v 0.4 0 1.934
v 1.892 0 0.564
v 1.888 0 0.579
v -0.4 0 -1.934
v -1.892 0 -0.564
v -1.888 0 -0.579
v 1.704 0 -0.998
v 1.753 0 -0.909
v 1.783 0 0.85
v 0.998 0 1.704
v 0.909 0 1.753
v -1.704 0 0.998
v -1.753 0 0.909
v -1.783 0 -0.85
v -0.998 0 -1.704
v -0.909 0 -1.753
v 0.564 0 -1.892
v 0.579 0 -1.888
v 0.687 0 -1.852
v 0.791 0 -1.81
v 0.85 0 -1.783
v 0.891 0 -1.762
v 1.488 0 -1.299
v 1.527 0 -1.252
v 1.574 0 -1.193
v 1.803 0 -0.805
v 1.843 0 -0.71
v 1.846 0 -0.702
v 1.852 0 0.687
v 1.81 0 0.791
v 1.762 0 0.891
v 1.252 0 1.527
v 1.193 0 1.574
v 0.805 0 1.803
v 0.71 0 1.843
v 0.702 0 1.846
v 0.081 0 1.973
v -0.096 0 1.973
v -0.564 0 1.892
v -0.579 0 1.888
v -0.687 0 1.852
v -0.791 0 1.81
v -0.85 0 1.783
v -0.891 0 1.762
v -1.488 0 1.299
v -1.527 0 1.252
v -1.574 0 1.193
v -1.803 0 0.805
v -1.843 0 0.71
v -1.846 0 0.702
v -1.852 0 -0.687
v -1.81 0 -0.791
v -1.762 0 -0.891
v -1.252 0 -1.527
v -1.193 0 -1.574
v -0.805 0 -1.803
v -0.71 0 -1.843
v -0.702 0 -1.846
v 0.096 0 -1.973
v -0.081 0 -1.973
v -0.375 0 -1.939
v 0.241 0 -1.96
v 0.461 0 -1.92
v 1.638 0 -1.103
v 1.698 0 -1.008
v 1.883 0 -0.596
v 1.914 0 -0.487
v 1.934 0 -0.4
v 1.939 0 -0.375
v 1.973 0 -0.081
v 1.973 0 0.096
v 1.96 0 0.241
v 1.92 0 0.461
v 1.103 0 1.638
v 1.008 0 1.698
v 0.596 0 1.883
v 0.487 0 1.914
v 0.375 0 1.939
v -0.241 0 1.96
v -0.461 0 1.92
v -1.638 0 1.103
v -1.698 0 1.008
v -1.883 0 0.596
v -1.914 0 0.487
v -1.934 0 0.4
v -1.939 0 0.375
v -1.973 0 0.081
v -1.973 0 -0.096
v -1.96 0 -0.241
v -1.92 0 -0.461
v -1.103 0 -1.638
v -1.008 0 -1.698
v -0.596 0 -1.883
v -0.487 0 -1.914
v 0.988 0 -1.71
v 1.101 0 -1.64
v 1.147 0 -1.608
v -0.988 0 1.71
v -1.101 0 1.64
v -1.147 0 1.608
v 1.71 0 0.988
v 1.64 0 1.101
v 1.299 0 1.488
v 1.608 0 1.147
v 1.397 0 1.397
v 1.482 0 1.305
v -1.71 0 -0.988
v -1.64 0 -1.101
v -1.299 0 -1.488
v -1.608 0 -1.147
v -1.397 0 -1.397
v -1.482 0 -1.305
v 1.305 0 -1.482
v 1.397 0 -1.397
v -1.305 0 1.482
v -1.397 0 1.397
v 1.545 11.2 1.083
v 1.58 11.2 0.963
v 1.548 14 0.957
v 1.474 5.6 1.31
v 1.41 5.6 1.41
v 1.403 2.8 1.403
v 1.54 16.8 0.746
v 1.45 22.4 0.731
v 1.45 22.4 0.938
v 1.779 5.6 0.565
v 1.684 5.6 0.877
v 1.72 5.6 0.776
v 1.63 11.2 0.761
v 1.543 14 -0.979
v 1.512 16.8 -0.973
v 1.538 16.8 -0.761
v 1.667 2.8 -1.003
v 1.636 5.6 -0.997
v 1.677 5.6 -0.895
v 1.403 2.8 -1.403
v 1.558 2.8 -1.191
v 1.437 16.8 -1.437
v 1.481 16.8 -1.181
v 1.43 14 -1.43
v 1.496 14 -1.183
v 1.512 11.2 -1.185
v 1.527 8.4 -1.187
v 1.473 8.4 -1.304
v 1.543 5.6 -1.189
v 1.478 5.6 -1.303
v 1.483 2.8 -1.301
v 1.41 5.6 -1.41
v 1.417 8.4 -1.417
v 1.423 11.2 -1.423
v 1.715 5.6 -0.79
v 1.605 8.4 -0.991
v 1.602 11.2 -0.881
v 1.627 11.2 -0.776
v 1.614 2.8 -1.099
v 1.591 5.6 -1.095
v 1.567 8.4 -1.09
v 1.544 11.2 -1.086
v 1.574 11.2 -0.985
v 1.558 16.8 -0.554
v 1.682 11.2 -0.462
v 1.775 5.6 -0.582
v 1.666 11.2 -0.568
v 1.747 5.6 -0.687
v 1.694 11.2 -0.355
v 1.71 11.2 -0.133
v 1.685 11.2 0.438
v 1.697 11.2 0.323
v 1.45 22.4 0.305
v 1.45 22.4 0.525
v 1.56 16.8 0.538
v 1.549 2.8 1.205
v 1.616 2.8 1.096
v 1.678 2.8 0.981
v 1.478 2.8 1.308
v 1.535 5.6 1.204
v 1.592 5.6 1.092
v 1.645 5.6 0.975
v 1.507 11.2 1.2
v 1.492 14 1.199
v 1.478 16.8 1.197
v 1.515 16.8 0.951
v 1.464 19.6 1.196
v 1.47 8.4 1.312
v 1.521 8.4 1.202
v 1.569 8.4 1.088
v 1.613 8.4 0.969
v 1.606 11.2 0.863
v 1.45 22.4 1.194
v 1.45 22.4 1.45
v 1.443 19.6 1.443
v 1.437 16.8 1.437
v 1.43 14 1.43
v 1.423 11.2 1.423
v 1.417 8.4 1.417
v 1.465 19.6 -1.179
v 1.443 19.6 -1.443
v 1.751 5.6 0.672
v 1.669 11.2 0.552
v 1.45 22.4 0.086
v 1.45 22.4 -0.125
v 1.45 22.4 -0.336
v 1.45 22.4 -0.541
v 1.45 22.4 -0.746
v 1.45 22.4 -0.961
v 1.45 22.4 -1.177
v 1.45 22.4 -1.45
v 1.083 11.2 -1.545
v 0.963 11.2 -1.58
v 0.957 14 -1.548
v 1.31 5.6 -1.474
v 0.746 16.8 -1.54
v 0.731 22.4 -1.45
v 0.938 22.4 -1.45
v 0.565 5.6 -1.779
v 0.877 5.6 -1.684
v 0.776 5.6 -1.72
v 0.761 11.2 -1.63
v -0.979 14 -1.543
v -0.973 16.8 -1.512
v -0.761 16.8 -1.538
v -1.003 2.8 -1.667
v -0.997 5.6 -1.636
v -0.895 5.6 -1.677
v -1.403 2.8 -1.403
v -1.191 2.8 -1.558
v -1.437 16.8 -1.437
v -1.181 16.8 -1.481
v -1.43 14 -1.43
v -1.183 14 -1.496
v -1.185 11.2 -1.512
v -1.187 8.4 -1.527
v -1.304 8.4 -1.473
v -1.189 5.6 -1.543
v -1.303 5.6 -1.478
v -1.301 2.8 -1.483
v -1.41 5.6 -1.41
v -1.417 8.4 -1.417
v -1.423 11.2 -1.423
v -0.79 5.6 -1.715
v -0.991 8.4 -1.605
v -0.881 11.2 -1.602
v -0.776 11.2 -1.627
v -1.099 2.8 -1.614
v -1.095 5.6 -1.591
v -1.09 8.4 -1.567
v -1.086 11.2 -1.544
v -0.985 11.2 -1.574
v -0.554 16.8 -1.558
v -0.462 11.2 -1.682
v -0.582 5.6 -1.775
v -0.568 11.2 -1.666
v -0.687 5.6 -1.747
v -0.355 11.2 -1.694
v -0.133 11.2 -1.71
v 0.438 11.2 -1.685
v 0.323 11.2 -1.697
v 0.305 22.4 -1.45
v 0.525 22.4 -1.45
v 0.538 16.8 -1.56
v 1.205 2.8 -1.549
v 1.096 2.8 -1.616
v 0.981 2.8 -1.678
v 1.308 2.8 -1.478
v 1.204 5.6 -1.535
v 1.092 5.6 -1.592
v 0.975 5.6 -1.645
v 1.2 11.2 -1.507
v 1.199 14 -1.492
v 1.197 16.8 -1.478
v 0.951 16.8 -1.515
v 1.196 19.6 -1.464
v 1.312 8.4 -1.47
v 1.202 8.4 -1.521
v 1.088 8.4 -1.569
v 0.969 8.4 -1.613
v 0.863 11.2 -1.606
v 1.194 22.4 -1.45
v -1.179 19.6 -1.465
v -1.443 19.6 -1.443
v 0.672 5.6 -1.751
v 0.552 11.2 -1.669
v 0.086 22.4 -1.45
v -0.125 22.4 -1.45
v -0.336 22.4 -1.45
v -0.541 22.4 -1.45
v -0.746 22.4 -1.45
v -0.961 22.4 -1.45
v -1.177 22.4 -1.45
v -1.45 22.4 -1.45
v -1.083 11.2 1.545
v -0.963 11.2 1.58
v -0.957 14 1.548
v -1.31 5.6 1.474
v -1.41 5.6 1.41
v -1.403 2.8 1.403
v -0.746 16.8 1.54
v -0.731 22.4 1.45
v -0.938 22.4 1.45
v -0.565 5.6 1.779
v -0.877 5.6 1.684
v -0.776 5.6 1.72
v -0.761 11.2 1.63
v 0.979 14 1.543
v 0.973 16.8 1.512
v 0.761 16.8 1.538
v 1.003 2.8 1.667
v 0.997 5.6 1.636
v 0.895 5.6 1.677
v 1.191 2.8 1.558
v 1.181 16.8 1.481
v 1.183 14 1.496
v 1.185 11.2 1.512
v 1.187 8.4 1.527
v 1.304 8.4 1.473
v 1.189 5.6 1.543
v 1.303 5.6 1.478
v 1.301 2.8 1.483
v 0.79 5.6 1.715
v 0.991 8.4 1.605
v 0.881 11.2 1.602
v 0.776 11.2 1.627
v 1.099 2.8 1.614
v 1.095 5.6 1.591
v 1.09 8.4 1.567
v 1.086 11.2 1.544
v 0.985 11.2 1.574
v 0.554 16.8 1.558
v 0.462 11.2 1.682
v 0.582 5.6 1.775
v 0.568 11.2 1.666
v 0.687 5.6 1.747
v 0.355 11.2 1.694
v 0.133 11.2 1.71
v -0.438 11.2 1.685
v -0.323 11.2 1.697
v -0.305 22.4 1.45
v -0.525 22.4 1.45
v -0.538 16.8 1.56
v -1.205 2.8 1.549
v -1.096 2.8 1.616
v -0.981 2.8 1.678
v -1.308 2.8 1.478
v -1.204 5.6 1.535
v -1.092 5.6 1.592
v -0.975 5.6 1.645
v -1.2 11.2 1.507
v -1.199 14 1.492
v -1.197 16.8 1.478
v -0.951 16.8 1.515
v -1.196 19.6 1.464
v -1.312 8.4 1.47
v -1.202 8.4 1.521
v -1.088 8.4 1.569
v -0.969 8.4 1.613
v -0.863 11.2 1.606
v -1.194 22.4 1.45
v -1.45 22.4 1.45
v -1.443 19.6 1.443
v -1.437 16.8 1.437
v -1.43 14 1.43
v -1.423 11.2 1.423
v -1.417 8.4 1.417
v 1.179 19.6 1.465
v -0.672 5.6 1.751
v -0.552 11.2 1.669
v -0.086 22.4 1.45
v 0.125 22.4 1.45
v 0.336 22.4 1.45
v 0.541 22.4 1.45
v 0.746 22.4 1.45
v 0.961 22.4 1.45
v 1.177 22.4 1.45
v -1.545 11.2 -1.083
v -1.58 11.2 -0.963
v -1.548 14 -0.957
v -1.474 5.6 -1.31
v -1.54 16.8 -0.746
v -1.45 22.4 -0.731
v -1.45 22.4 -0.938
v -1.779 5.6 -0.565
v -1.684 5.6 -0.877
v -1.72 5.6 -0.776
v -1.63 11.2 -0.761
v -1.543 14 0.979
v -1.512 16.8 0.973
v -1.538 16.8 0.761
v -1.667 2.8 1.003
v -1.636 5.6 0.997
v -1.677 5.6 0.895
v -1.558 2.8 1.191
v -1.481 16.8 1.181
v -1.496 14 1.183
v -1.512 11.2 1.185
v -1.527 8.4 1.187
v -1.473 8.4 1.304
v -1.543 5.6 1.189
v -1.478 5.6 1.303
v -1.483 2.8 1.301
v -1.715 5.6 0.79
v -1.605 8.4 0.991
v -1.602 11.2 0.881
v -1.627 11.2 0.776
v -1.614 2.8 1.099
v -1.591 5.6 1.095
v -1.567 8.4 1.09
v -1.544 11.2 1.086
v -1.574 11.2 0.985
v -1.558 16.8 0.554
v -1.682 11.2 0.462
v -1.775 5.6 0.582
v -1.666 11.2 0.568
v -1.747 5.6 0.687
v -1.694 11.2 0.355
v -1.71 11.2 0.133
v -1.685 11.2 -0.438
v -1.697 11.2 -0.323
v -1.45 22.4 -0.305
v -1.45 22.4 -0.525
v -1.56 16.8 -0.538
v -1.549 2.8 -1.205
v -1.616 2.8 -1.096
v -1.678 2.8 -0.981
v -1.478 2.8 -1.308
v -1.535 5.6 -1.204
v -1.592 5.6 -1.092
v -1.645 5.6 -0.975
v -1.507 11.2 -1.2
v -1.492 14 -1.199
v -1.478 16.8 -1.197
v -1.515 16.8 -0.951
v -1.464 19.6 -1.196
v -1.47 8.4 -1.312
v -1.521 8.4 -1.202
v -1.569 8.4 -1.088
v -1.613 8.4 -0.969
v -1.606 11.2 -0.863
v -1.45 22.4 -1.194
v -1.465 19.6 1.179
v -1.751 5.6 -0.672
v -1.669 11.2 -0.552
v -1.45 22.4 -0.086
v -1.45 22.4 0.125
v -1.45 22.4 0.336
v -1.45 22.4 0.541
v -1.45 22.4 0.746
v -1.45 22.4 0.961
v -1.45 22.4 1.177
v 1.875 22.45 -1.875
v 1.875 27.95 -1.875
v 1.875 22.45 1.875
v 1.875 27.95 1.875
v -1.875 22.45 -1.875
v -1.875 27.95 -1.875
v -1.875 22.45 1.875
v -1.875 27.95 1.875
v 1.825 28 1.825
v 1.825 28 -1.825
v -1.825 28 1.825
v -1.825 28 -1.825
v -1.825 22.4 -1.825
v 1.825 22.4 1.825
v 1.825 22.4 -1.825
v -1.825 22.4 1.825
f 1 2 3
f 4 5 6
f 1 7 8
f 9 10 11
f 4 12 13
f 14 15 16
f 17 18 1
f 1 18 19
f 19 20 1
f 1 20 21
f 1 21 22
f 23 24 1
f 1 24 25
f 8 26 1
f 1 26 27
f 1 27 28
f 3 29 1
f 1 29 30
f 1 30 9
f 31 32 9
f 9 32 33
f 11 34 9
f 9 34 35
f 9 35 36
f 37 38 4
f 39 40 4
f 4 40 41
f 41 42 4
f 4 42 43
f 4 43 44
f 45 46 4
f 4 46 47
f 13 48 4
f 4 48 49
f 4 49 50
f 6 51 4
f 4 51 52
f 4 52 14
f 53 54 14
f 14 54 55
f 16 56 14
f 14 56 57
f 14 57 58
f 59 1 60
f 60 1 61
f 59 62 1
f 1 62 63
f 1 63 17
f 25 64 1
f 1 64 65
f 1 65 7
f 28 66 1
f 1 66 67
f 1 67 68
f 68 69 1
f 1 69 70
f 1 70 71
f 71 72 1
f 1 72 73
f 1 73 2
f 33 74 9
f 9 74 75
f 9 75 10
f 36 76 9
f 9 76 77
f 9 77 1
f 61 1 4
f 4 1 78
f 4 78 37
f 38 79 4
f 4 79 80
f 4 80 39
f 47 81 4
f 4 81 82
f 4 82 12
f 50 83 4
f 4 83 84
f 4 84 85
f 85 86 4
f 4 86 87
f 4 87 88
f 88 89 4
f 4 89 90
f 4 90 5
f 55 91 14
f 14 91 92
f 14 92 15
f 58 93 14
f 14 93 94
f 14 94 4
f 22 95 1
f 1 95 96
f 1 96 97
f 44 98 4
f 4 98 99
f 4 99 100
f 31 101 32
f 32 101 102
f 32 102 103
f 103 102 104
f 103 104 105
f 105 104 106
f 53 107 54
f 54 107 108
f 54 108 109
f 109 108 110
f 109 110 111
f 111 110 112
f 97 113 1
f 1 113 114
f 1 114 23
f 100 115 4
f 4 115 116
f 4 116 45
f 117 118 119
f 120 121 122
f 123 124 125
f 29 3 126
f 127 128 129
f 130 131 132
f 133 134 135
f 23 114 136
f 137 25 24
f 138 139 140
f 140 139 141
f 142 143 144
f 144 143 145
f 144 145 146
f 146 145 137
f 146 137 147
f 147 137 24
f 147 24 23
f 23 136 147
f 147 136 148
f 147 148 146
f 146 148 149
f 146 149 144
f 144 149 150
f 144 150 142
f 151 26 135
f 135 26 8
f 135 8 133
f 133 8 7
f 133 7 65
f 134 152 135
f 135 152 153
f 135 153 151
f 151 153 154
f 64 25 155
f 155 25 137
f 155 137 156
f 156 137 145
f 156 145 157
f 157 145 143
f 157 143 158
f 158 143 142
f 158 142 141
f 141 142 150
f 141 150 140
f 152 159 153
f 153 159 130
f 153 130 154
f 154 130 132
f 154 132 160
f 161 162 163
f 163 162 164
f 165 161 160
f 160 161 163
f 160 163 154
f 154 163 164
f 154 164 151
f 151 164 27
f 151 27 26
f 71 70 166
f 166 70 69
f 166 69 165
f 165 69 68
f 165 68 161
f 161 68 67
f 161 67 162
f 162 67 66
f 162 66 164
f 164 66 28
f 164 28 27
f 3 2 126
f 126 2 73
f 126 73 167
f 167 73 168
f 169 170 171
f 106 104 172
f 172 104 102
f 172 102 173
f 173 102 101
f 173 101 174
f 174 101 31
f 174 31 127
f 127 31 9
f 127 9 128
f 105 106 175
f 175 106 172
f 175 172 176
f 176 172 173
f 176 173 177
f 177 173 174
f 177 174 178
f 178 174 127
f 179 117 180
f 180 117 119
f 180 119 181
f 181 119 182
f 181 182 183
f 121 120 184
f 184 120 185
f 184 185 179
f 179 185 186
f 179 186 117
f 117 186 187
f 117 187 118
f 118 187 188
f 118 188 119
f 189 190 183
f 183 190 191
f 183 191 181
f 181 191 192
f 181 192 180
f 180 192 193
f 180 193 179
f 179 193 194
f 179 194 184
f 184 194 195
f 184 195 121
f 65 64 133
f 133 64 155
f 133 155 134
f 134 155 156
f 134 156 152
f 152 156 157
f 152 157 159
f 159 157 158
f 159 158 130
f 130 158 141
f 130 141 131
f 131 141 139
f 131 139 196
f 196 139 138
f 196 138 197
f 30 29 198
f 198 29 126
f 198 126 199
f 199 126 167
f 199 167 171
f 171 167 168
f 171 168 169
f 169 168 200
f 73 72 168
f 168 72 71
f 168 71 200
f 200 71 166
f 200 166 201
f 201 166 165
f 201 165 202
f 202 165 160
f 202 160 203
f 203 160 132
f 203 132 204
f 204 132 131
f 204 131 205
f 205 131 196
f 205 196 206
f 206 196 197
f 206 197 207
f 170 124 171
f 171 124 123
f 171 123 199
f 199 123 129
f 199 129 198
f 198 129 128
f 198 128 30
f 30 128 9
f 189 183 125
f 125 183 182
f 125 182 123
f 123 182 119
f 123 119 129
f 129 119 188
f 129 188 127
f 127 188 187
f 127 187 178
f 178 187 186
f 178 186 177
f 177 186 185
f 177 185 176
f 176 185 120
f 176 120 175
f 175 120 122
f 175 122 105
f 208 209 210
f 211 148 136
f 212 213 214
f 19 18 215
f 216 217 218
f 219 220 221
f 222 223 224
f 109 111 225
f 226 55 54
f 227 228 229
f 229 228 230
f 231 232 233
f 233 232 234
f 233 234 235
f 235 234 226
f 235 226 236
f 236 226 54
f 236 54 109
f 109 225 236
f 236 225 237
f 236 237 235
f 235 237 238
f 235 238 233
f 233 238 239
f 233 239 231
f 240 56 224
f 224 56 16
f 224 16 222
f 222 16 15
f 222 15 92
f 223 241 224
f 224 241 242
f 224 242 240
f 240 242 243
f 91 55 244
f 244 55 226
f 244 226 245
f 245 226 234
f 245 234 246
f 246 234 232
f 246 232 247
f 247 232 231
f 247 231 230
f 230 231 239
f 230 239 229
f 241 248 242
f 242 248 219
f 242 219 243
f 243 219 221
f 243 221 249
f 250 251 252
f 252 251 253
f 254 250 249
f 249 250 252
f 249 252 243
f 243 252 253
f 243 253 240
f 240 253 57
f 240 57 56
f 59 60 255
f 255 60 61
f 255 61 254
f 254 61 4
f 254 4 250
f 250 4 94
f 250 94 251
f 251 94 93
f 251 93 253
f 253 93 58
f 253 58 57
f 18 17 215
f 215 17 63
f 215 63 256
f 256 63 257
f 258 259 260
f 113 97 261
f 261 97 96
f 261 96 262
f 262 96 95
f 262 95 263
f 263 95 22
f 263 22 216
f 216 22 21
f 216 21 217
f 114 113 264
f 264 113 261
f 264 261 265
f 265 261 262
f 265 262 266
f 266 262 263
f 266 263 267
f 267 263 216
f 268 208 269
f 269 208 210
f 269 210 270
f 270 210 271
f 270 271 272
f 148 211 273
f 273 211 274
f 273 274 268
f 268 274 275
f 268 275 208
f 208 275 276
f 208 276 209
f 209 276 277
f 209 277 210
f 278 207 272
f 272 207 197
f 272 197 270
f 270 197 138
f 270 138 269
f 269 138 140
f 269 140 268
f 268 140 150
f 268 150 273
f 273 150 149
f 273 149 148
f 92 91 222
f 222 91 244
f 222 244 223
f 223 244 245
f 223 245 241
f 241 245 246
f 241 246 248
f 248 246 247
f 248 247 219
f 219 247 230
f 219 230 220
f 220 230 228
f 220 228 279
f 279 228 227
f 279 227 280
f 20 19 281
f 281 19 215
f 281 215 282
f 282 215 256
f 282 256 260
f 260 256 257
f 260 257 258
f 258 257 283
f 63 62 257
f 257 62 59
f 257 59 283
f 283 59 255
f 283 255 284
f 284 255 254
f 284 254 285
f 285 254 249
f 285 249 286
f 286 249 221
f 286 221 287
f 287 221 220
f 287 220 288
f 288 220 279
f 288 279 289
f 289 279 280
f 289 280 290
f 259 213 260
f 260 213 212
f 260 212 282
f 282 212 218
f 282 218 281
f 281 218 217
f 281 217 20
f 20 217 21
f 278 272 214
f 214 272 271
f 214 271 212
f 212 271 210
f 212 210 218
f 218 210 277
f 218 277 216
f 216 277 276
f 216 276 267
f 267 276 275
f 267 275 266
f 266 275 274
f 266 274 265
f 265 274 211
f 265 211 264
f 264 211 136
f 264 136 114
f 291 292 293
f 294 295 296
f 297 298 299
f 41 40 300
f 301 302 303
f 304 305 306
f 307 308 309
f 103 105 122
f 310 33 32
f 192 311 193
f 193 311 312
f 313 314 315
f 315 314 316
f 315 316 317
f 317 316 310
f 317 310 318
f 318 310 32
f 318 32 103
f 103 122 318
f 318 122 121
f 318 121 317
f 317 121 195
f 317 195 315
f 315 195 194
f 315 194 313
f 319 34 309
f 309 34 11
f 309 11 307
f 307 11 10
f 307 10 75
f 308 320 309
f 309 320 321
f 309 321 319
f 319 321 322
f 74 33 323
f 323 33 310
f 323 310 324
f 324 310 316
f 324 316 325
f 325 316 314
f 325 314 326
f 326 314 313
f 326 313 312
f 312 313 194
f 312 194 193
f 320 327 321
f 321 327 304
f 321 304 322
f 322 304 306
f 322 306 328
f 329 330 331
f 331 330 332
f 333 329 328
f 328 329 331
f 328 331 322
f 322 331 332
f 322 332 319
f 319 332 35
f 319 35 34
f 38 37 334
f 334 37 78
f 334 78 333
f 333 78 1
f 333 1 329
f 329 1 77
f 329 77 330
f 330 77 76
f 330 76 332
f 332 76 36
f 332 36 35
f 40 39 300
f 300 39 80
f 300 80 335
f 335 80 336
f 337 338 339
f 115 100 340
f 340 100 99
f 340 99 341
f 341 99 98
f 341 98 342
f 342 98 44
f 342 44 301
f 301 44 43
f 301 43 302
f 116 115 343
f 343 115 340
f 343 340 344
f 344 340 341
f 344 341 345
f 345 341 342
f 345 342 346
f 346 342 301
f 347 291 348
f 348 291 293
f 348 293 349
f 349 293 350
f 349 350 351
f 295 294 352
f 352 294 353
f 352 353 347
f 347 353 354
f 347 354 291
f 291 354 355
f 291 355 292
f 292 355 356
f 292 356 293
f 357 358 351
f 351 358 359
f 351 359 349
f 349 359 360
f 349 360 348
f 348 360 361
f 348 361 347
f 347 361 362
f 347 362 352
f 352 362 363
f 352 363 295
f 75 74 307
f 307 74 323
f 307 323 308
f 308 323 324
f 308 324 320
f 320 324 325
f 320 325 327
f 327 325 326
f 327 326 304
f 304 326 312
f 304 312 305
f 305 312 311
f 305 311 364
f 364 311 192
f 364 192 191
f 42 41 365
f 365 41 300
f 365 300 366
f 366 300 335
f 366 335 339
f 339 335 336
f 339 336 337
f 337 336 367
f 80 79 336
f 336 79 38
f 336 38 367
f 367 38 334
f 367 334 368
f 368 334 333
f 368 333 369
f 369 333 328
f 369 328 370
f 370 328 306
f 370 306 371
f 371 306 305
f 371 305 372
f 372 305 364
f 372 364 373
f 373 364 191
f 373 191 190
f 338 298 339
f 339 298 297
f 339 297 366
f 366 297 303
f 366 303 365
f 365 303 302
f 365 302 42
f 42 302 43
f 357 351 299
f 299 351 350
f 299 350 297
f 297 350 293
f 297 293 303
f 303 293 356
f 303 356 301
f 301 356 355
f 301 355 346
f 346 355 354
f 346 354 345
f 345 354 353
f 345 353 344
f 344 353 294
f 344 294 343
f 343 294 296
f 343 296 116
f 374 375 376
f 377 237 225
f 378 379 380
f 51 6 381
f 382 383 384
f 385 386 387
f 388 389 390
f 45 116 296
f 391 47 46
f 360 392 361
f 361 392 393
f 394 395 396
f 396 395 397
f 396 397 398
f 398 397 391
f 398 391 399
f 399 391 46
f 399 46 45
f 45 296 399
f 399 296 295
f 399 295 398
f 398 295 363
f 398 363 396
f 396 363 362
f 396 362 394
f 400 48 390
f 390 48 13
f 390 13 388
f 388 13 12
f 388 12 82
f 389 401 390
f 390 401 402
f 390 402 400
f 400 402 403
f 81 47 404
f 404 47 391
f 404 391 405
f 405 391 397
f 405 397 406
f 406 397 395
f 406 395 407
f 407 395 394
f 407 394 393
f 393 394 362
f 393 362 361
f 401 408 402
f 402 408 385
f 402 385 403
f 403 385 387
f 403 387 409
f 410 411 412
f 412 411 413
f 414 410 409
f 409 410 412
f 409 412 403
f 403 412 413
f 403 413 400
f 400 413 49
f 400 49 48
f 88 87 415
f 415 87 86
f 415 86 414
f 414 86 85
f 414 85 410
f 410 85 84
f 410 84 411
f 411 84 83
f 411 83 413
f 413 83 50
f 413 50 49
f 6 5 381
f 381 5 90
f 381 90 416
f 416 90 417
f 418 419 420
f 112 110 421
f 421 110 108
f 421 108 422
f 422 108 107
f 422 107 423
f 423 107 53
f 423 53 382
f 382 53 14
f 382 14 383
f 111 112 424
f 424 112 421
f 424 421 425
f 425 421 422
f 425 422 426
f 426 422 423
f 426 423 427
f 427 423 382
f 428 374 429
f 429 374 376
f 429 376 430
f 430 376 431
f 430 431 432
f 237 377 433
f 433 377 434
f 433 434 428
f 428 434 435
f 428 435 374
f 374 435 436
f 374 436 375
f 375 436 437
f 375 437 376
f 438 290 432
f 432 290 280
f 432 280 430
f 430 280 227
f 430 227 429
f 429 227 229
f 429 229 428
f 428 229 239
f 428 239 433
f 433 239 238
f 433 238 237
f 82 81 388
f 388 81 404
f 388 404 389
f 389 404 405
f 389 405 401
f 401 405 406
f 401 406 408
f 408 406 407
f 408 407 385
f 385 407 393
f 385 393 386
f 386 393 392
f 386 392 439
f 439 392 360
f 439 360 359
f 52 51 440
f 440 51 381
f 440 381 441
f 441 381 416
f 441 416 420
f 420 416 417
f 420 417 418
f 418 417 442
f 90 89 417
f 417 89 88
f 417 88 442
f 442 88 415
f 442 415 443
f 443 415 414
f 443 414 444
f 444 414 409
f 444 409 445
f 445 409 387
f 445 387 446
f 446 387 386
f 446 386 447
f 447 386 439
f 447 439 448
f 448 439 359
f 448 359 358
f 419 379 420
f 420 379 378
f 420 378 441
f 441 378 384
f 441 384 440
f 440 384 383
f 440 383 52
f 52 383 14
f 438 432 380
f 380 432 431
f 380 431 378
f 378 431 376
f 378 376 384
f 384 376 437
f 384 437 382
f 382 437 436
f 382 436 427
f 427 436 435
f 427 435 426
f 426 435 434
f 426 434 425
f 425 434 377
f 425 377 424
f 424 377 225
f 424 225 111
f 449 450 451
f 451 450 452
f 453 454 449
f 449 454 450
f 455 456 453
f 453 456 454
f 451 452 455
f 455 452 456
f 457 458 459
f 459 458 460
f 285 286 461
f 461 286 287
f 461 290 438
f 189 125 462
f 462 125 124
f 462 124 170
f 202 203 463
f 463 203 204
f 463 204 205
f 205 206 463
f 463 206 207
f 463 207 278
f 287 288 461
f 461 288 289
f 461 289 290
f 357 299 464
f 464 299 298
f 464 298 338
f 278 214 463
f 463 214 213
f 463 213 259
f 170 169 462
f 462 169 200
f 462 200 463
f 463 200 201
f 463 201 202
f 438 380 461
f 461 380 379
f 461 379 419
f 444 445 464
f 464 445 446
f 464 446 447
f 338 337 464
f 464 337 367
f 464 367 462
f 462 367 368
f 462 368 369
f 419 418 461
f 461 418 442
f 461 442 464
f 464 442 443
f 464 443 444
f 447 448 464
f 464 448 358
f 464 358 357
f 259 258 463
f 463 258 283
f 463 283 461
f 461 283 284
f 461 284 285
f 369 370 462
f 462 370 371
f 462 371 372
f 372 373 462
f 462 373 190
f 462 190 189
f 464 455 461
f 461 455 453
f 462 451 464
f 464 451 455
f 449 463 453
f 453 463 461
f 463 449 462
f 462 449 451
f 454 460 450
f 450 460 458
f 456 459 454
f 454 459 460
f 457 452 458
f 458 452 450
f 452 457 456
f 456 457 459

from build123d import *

# Parameters (mm, degrees)
SKETCH3_W           = 3.75
SKETCH3_H           = 3.75
BOSS_EXTRUDE4_DEPTH = 5.6
CHAMFER1_SIZE       = 0.05


with BuildPart() as part:
    # Sketch1 for Loft1 → Loft1 section 0
    with BuildSketch(Plane(origin=(0, 0, 0), x_dir=(1, 0, 0), z_dir=(0, 1, 0))):
        with BuildLine():
            # circular arc as an exact rational Bezier (weights 1, cos(half-angle), 1)
            Bezier((-1.396535893, -1.396535893), (0, -2.793071785), (1.396535893, -1.396535893), weights=[1, 0.707106781, 1])
            Bezier((1.396535893, -1.396535893), (2.793071785, 0), (1.396535893, 1.396535893), weights=[1, 0.707106781, 1])
            Bezier((1.396535893, 1.396535893), (0, 2.793071785), (-1.396535893, 1.396535893), weights=[1, 0.707106781, 1])
            Bezier((-1.396535893, 1.396535893), (-2.793071785, 0), (-1.396535893, -1.396535893), weights=[1, 0.707106781, 1])
        make_face()
    # Sketch2 → Loft1 section 1
    with BuildSketch(Plane(origin=(0, 22.4, 0), x_dir=(1, 0, 0), z_dir=(0, 1, 0))):
        with BuildLine():
            Line((-1.45, -1.45), (1.45, -1.45))
            Line((1.45, -1.45), (1.45, 1.45))
            Line((1.45, 1.45), (-1.45, 1.45))
            Line((-1.45, 1.45), (-1.45, -1.45))
        make_face()
    loft()

    # Sketch3 → Boss-Extrude4 (add)
    with BuildSketch(Plane(origin=(0, 22.4, 0), x_dir=(1, 0, 0), z_dir=(0, 1, 0))):
        Rectangle(SKETCH3_W, SKETCH3_H)
    extrude(amount=BOSS_EXTRUDE4_DEPTH)

    # Chamfer1
    chamfer1_edges = [part.edges().sort_by_distance(p)[0] for p in [
        (1.875, 22.4, 0),
        (0, 22.4, -1.875),
        (-1.875, 22.4, 0),
        (0, 22.4, 1.875),
        (1.875, 28, 0),
        (0, 28, -1.875),
        (-1.875, 28, 0),
        (0, 28, 1.875),
    ]]
    chamfer(chamfer1_edges, length=CHAMFER1_SIZE)


solid = part.part
